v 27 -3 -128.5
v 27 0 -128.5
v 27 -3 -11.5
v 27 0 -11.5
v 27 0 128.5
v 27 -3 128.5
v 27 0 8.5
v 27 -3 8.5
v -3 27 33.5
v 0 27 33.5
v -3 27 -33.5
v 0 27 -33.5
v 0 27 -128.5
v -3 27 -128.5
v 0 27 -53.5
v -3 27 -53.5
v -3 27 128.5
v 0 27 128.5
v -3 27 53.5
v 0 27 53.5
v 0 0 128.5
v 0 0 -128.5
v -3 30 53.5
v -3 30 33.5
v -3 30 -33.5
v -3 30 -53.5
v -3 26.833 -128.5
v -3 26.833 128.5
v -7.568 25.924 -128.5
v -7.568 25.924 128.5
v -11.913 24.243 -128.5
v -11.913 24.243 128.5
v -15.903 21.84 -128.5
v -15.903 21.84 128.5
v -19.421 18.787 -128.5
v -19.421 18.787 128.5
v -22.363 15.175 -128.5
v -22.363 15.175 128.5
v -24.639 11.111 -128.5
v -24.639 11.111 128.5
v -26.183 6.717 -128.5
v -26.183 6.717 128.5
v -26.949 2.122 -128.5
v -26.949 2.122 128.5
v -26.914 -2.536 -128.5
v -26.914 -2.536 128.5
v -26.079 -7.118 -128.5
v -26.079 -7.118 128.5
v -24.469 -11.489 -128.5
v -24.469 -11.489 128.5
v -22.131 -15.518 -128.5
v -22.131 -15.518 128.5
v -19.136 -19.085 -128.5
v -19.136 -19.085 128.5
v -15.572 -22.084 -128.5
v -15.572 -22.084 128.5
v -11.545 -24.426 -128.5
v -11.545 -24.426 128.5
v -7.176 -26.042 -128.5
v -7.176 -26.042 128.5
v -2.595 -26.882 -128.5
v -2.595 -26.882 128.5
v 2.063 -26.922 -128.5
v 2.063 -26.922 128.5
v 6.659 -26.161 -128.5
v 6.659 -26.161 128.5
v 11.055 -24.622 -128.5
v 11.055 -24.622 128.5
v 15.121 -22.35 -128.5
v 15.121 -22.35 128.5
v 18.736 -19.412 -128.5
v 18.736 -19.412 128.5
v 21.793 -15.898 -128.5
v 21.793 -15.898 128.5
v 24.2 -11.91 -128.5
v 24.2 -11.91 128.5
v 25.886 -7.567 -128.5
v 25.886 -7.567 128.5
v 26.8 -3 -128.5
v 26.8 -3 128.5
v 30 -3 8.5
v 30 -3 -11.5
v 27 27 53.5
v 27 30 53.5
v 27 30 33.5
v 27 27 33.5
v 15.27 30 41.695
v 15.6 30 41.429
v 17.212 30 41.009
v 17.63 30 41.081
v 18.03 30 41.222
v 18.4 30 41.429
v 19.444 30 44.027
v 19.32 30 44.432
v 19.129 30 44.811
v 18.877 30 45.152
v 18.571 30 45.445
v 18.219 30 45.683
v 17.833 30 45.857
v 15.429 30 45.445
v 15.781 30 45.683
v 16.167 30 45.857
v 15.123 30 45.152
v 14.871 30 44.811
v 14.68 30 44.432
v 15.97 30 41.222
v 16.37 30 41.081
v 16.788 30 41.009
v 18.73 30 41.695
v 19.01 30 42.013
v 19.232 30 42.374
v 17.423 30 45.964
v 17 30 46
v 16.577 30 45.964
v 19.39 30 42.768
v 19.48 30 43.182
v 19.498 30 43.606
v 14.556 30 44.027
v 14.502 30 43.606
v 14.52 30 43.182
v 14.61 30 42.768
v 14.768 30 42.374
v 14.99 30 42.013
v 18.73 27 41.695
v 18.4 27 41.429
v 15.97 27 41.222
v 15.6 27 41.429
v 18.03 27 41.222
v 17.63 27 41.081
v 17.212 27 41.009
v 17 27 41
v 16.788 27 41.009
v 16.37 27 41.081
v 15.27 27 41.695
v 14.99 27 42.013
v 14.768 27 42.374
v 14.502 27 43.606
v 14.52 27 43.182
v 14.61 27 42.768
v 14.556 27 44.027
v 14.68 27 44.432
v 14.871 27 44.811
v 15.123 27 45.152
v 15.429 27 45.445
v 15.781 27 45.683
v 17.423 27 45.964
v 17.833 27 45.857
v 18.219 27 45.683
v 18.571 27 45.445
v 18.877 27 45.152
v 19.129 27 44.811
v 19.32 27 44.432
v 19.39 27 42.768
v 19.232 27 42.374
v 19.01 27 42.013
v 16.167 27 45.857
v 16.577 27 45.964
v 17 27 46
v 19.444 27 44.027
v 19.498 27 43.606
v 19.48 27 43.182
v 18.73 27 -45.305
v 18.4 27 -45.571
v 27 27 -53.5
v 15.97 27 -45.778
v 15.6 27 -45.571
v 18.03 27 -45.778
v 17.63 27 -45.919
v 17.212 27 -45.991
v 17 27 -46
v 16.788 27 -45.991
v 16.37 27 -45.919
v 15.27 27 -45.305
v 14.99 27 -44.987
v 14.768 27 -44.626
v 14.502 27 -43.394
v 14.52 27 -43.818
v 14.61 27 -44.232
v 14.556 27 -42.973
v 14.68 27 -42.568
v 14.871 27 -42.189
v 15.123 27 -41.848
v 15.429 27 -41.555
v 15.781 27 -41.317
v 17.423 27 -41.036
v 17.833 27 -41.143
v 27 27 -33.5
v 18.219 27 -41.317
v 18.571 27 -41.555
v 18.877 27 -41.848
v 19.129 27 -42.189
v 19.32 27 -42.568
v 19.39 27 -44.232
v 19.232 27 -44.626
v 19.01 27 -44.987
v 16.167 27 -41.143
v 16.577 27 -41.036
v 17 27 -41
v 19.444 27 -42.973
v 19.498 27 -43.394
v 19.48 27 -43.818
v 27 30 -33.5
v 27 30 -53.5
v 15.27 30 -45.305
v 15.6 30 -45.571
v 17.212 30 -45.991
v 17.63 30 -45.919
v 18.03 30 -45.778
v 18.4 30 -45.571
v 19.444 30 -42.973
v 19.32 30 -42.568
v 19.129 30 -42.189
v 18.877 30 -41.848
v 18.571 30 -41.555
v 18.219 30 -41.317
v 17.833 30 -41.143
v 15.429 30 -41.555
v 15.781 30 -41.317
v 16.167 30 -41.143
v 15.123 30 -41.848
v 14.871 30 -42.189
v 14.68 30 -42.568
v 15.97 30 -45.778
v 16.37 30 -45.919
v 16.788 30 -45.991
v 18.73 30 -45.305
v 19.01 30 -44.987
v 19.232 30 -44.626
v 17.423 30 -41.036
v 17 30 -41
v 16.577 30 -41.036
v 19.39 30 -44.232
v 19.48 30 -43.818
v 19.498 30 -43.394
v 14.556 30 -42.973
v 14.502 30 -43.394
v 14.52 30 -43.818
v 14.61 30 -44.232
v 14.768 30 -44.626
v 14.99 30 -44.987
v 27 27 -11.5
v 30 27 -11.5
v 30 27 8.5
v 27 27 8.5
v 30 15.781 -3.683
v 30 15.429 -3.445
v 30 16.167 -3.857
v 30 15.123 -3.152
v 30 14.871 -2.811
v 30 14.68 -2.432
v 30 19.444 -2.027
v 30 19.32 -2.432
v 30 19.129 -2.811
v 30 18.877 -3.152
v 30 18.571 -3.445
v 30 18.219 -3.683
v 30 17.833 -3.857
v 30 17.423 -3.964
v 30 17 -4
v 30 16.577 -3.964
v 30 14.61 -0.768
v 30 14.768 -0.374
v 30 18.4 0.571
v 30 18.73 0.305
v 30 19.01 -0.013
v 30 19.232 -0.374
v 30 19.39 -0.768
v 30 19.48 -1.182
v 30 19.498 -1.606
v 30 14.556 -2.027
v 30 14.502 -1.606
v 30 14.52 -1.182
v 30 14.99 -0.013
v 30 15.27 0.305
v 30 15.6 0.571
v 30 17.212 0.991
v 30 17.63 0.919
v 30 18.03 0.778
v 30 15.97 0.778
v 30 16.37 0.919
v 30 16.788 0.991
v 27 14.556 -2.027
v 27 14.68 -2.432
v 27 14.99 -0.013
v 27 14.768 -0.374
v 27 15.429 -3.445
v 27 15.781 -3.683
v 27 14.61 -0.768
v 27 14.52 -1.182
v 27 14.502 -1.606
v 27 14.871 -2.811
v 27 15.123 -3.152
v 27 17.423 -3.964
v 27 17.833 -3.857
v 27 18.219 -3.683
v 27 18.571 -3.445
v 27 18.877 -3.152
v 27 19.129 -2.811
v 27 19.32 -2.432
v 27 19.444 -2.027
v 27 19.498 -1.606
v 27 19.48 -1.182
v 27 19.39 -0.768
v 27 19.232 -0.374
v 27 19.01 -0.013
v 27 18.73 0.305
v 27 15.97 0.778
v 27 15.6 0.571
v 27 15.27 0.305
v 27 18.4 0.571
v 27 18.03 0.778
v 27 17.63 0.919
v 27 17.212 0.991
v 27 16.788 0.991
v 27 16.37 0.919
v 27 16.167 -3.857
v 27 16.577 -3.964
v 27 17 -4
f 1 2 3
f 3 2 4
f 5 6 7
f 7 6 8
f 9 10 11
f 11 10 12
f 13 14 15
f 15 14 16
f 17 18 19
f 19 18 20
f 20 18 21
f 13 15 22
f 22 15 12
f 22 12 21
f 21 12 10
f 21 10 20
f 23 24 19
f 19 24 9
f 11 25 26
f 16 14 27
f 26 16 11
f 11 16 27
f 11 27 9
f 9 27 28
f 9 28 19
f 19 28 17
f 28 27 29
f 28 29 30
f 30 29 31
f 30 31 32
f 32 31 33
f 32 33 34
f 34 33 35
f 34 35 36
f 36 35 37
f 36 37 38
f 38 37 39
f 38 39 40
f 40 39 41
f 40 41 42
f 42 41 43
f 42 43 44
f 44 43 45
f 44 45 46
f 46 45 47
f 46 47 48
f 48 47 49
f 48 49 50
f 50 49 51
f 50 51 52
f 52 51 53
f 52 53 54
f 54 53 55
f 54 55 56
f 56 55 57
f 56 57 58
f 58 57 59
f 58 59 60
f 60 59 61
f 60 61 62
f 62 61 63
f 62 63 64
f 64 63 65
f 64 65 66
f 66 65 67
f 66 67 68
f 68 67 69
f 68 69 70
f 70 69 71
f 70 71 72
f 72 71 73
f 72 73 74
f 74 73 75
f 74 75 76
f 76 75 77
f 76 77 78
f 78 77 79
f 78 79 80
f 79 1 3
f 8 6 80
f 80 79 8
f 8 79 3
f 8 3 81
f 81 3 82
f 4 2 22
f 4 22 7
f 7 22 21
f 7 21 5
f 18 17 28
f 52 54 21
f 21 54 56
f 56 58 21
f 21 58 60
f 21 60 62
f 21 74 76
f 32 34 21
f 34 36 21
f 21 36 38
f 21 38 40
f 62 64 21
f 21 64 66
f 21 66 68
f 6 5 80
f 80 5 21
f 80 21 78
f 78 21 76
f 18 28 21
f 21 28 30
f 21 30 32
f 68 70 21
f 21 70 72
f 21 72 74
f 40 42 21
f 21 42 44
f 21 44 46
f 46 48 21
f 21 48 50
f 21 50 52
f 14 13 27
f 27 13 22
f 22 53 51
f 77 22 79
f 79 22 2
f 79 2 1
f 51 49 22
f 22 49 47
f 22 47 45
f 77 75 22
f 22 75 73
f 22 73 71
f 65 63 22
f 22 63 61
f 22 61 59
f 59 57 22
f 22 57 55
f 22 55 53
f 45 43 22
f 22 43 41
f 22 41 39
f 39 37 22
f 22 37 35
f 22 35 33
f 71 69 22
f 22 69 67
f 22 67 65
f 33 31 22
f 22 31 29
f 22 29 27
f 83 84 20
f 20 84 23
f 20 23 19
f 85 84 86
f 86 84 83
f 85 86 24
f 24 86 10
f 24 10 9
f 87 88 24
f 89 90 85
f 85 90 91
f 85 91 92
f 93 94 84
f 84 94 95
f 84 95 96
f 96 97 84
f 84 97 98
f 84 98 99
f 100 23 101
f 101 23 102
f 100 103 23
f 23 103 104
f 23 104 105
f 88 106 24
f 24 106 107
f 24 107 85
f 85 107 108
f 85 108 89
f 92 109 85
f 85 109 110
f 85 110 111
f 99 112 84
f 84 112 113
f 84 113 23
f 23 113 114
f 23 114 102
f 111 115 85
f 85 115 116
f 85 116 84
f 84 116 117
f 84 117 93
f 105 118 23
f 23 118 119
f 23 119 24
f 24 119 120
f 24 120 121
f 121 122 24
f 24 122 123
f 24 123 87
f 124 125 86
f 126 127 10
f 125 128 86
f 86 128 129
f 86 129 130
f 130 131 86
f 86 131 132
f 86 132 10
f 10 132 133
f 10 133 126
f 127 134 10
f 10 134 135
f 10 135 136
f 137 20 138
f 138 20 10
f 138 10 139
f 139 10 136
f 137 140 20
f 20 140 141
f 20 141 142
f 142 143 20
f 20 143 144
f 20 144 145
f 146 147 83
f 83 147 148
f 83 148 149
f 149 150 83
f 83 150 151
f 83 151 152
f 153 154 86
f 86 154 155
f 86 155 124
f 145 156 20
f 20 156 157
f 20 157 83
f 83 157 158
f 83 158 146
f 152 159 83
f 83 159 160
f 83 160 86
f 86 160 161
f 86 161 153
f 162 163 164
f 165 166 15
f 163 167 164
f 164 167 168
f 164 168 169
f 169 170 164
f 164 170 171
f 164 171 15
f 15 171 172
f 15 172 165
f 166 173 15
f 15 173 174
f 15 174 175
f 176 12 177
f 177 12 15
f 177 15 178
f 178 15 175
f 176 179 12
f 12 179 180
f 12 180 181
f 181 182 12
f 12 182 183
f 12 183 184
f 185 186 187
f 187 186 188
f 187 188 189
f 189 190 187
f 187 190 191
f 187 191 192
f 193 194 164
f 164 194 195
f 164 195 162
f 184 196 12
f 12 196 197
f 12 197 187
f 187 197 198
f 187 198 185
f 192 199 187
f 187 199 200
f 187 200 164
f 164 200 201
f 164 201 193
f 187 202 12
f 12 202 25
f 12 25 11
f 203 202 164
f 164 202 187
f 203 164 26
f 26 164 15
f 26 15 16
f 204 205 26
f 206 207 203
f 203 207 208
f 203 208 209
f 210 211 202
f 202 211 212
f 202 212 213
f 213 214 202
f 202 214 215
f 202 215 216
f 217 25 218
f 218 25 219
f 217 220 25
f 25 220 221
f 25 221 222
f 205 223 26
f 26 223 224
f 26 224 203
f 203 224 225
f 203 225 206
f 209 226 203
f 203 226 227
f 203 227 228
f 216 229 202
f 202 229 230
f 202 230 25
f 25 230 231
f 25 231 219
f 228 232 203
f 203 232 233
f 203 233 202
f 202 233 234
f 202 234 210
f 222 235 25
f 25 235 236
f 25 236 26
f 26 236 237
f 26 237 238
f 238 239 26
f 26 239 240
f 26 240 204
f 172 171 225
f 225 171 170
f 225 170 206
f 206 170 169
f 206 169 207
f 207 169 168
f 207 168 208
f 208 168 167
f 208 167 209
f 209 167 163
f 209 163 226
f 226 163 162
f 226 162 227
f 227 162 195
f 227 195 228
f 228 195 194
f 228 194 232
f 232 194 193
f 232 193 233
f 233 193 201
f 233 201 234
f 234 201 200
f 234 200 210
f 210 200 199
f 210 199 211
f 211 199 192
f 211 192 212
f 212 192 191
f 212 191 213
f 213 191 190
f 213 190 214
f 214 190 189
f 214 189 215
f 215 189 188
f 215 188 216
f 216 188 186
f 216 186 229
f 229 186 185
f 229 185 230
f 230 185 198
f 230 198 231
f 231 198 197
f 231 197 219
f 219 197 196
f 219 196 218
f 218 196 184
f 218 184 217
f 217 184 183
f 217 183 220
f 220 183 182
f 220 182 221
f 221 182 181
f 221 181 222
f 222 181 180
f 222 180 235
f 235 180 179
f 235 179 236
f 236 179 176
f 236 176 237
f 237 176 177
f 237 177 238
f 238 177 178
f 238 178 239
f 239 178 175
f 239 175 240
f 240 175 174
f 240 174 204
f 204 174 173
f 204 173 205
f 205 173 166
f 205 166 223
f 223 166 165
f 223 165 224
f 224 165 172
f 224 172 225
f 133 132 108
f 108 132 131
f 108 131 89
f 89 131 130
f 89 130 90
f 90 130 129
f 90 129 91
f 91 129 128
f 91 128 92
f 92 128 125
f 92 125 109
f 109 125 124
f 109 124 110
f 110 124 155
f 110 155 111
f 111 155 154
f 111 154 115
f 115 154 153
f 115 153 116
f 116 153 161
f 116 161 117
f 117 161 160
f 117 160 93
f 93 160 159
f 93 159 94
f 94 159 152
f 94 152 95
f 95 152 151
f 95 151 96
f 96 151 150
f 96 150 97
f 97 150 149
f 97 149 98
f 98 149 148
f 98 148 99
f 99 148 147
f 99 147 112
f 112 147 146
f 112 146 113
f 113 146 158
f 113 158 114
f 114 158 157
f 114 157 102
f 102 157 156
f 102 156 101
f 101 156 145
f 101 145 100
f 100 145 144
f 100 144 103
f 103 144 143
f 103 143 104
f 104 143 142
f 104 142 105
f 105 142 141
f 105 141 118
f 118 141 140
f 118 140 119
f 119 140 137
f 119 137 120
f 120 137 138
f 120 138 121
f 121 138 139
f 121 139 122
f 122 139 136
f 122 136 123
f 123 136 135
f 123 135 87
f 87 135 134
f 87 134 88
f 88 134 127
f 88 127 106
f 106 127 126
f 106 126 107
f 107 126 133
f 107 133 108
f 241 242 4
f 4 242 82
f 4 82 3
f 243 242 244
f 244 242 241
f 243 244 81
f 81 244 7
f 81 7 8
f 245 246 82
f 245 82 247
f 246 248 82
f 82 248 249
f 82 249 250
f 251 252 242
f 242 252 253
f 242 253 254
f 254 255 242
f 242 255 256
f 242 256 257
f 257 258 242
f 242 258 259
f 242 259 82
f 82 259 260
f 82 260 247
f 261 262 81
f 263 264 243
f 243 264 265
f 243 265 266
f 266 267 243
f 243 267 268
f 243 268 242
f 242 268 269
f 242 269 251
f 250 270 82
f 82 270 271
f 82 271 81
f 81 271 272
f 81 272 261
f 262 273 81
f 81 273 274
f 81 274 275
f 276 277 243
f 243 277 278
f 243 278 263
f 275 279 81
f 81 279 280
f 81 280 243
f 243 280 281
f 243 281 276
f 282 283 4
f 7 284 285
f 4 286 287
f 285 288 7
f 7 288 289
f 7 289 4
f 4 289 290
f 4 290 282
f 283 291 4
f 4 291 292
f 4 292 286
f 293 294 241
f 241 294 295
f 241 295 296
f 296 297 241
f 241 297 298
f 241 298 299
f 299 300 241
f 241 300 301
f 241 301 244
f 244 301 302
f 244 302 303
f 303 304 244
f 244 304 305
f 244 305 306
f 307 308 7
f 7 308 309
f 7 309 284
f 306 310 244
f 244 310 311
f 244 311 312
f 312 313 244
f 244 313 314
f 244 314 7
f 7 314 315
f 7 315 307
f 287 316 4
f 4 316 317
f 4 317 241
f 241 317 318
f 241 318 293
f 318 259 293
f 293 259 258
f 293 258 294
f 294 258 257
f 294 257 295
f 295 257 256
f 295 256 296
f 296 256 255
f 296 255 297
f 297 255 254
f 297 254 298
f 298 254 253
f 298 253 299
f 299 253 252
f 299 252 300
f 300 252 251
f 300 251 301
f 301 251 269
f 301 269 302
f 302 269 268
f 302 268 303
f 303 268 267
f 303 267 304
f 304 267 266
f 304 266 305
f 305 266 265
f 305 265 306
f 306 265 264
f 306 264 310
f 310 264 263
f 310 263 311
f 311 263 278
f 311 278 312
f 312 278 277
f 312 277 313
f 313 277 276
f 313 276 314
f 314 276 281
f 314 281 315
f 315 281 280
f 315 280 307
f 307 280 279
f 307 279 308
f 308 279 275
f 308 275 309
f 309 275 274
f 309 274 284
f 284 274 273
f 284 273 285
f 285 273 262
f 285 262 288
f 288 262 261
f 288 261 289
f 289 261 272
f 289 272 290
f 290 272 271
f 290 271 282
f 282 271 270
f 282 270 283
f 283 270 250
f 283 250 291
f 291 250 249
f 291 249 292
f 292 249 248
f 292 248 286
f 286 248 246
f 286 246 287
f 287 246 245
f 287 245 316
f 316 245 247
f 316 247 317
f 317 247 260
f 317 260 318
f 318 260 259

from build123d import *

# Parameters (mm, degrees)
BOSS_EXTRUDE1_DEPTH = 128.5
SKETCH7_W           = 30
SKETCH7_H           = 20
BOSS_EXTRUDE4_DEPTH = 3
CUT_EXTRUDE1_REACH  = 145.152
SKETCH9_R           = 2.5
SKETCH10_W          = 20
SKETCH10_H          = 30
BOSS_EXTRUDE5_DEPTH = 3
CUT_EXTRUDE2_REACH  = 145.753
SKETCH11_R          = 2.5


with BuildPart() as part:
    # Sketch4 → Boss-Extrude1 (new, symmetric)
    with BuildSketch(Plane.XY):
        with BuildLine():
            Line((0, 0), (27, 0))
            Line((27, 0), (27, -3))
            Line((27, -3), (26.800082477, -3))
            ThreePointArc((26.800082477, -3), (-19.135504983, -19.08508544), (-3, 26.83281573))
            Line((-3, 26.83281573), (-3, 27))
            Line((-3, 27), (0, 27))
            Line((0, 27), (0, 0))
        make_face()
    extrude(amount=BOSS_EXTRUDE1_DEPTH, both=True)

    # Sketch7 → Boss-Extrude4 (add)
    with BuildSketch(Plane(origin=(0, 27, 0), x_dir=(1, 0, 0), z_dir=(0, 1, 0))):
        with Locations((12, -43.5)):
            Rectangle(SKETCH7_W, SKETCH7_H)
        with Locations((12, 43.5)):
            Rectangle(SKETCH7_W, SKETCH7_H)
    extrude(amount=BOSS_EXTRUDE4_DEPTH)

    # Sketch9 → Cut-Extrude1 (cut, up to next)
    with BuildSketch(Plane(origin=(0, 30, 0), x_dir=(1, 0, 0), z_dir=(0, 1, 0)), mode=Mode.PRIVATE) as cut_extrude1_sk1:
        with Locations(Location((17, -43.5, 0), (0, 0, 270))):
            Circle(SKETCH9_R)
    cut_extrude1_tool1 = extrude(cut_extrude1_sk1.sketch, amount=-CUT_EXTRUDE1_REACH, mode=Mode.PRIVATE) & part.part
    # Sketch9 → Cut-Extrude1 (cut, up to next)
    with BuildSketch(Plane(origin=(0, 30, 0), x_dir=(1, 0, 0), z_dir=(0, 1, 0)), mode=Mode.PRIVATE) as cut_extrude1_sk2:
        with Locations(Location((17, 43.5, 0), (0, 0, 270))):
            Circle(SKETCH9_R)
    cut_extrude1_tool2 = extrude(cut_extrude1_sk2.sketch, amount=-CUT_EXTRUDE1_REACH, mode=Mode.PRIVATE) & part.part
    add(cut_extrude1_tool1.solids().sort_by_distance((17, 30, 43.5))[0], mode=Mode.SUBTRACT)
    add(cut_extrude1_tool2.solids().sort_by_distance((17, 30, -43.5))[0], mode=Mode.SUBTRACT)

    # Sketch10 → Boss-Extrude5 (add)
    with BuildSketch(Plane(origin=(27, 0, 0), x_dir=(0, 0, -1), z_dir=(1, 0, 0))):
        with Locations((1.5, 12)):
            Rectangle(SKETCH10_W, SKETCH10_H)
    extrude(amount=BOSS_EXTRUDE5_DEPTH)

    # Sketch11 → Cut-Extrude2 (cut, up to next)
    with BuildSketch(Plane(origin=(30, 0, 0), x_dir=(0, 0, -1), z_dir=(1, 0, 0)), mode=Mode.PRIVATE) as cut_extrude2_sk1:
        with Locations((1.5, 17)):
            Circle(SKETCH11_R)
    cut_extrude2_tool1 = extrude(cut_extrude2_sk1.sketch, amount=-CUT_EXTRUDE2_REACH, mode=Mode.PRIVATE) & part.part
    add(cut_extrude2_tool1.solids().sort_by_distance((30, 17, -1.5))[0], mode=Mode.SUBTRACT)


solid = part.part
